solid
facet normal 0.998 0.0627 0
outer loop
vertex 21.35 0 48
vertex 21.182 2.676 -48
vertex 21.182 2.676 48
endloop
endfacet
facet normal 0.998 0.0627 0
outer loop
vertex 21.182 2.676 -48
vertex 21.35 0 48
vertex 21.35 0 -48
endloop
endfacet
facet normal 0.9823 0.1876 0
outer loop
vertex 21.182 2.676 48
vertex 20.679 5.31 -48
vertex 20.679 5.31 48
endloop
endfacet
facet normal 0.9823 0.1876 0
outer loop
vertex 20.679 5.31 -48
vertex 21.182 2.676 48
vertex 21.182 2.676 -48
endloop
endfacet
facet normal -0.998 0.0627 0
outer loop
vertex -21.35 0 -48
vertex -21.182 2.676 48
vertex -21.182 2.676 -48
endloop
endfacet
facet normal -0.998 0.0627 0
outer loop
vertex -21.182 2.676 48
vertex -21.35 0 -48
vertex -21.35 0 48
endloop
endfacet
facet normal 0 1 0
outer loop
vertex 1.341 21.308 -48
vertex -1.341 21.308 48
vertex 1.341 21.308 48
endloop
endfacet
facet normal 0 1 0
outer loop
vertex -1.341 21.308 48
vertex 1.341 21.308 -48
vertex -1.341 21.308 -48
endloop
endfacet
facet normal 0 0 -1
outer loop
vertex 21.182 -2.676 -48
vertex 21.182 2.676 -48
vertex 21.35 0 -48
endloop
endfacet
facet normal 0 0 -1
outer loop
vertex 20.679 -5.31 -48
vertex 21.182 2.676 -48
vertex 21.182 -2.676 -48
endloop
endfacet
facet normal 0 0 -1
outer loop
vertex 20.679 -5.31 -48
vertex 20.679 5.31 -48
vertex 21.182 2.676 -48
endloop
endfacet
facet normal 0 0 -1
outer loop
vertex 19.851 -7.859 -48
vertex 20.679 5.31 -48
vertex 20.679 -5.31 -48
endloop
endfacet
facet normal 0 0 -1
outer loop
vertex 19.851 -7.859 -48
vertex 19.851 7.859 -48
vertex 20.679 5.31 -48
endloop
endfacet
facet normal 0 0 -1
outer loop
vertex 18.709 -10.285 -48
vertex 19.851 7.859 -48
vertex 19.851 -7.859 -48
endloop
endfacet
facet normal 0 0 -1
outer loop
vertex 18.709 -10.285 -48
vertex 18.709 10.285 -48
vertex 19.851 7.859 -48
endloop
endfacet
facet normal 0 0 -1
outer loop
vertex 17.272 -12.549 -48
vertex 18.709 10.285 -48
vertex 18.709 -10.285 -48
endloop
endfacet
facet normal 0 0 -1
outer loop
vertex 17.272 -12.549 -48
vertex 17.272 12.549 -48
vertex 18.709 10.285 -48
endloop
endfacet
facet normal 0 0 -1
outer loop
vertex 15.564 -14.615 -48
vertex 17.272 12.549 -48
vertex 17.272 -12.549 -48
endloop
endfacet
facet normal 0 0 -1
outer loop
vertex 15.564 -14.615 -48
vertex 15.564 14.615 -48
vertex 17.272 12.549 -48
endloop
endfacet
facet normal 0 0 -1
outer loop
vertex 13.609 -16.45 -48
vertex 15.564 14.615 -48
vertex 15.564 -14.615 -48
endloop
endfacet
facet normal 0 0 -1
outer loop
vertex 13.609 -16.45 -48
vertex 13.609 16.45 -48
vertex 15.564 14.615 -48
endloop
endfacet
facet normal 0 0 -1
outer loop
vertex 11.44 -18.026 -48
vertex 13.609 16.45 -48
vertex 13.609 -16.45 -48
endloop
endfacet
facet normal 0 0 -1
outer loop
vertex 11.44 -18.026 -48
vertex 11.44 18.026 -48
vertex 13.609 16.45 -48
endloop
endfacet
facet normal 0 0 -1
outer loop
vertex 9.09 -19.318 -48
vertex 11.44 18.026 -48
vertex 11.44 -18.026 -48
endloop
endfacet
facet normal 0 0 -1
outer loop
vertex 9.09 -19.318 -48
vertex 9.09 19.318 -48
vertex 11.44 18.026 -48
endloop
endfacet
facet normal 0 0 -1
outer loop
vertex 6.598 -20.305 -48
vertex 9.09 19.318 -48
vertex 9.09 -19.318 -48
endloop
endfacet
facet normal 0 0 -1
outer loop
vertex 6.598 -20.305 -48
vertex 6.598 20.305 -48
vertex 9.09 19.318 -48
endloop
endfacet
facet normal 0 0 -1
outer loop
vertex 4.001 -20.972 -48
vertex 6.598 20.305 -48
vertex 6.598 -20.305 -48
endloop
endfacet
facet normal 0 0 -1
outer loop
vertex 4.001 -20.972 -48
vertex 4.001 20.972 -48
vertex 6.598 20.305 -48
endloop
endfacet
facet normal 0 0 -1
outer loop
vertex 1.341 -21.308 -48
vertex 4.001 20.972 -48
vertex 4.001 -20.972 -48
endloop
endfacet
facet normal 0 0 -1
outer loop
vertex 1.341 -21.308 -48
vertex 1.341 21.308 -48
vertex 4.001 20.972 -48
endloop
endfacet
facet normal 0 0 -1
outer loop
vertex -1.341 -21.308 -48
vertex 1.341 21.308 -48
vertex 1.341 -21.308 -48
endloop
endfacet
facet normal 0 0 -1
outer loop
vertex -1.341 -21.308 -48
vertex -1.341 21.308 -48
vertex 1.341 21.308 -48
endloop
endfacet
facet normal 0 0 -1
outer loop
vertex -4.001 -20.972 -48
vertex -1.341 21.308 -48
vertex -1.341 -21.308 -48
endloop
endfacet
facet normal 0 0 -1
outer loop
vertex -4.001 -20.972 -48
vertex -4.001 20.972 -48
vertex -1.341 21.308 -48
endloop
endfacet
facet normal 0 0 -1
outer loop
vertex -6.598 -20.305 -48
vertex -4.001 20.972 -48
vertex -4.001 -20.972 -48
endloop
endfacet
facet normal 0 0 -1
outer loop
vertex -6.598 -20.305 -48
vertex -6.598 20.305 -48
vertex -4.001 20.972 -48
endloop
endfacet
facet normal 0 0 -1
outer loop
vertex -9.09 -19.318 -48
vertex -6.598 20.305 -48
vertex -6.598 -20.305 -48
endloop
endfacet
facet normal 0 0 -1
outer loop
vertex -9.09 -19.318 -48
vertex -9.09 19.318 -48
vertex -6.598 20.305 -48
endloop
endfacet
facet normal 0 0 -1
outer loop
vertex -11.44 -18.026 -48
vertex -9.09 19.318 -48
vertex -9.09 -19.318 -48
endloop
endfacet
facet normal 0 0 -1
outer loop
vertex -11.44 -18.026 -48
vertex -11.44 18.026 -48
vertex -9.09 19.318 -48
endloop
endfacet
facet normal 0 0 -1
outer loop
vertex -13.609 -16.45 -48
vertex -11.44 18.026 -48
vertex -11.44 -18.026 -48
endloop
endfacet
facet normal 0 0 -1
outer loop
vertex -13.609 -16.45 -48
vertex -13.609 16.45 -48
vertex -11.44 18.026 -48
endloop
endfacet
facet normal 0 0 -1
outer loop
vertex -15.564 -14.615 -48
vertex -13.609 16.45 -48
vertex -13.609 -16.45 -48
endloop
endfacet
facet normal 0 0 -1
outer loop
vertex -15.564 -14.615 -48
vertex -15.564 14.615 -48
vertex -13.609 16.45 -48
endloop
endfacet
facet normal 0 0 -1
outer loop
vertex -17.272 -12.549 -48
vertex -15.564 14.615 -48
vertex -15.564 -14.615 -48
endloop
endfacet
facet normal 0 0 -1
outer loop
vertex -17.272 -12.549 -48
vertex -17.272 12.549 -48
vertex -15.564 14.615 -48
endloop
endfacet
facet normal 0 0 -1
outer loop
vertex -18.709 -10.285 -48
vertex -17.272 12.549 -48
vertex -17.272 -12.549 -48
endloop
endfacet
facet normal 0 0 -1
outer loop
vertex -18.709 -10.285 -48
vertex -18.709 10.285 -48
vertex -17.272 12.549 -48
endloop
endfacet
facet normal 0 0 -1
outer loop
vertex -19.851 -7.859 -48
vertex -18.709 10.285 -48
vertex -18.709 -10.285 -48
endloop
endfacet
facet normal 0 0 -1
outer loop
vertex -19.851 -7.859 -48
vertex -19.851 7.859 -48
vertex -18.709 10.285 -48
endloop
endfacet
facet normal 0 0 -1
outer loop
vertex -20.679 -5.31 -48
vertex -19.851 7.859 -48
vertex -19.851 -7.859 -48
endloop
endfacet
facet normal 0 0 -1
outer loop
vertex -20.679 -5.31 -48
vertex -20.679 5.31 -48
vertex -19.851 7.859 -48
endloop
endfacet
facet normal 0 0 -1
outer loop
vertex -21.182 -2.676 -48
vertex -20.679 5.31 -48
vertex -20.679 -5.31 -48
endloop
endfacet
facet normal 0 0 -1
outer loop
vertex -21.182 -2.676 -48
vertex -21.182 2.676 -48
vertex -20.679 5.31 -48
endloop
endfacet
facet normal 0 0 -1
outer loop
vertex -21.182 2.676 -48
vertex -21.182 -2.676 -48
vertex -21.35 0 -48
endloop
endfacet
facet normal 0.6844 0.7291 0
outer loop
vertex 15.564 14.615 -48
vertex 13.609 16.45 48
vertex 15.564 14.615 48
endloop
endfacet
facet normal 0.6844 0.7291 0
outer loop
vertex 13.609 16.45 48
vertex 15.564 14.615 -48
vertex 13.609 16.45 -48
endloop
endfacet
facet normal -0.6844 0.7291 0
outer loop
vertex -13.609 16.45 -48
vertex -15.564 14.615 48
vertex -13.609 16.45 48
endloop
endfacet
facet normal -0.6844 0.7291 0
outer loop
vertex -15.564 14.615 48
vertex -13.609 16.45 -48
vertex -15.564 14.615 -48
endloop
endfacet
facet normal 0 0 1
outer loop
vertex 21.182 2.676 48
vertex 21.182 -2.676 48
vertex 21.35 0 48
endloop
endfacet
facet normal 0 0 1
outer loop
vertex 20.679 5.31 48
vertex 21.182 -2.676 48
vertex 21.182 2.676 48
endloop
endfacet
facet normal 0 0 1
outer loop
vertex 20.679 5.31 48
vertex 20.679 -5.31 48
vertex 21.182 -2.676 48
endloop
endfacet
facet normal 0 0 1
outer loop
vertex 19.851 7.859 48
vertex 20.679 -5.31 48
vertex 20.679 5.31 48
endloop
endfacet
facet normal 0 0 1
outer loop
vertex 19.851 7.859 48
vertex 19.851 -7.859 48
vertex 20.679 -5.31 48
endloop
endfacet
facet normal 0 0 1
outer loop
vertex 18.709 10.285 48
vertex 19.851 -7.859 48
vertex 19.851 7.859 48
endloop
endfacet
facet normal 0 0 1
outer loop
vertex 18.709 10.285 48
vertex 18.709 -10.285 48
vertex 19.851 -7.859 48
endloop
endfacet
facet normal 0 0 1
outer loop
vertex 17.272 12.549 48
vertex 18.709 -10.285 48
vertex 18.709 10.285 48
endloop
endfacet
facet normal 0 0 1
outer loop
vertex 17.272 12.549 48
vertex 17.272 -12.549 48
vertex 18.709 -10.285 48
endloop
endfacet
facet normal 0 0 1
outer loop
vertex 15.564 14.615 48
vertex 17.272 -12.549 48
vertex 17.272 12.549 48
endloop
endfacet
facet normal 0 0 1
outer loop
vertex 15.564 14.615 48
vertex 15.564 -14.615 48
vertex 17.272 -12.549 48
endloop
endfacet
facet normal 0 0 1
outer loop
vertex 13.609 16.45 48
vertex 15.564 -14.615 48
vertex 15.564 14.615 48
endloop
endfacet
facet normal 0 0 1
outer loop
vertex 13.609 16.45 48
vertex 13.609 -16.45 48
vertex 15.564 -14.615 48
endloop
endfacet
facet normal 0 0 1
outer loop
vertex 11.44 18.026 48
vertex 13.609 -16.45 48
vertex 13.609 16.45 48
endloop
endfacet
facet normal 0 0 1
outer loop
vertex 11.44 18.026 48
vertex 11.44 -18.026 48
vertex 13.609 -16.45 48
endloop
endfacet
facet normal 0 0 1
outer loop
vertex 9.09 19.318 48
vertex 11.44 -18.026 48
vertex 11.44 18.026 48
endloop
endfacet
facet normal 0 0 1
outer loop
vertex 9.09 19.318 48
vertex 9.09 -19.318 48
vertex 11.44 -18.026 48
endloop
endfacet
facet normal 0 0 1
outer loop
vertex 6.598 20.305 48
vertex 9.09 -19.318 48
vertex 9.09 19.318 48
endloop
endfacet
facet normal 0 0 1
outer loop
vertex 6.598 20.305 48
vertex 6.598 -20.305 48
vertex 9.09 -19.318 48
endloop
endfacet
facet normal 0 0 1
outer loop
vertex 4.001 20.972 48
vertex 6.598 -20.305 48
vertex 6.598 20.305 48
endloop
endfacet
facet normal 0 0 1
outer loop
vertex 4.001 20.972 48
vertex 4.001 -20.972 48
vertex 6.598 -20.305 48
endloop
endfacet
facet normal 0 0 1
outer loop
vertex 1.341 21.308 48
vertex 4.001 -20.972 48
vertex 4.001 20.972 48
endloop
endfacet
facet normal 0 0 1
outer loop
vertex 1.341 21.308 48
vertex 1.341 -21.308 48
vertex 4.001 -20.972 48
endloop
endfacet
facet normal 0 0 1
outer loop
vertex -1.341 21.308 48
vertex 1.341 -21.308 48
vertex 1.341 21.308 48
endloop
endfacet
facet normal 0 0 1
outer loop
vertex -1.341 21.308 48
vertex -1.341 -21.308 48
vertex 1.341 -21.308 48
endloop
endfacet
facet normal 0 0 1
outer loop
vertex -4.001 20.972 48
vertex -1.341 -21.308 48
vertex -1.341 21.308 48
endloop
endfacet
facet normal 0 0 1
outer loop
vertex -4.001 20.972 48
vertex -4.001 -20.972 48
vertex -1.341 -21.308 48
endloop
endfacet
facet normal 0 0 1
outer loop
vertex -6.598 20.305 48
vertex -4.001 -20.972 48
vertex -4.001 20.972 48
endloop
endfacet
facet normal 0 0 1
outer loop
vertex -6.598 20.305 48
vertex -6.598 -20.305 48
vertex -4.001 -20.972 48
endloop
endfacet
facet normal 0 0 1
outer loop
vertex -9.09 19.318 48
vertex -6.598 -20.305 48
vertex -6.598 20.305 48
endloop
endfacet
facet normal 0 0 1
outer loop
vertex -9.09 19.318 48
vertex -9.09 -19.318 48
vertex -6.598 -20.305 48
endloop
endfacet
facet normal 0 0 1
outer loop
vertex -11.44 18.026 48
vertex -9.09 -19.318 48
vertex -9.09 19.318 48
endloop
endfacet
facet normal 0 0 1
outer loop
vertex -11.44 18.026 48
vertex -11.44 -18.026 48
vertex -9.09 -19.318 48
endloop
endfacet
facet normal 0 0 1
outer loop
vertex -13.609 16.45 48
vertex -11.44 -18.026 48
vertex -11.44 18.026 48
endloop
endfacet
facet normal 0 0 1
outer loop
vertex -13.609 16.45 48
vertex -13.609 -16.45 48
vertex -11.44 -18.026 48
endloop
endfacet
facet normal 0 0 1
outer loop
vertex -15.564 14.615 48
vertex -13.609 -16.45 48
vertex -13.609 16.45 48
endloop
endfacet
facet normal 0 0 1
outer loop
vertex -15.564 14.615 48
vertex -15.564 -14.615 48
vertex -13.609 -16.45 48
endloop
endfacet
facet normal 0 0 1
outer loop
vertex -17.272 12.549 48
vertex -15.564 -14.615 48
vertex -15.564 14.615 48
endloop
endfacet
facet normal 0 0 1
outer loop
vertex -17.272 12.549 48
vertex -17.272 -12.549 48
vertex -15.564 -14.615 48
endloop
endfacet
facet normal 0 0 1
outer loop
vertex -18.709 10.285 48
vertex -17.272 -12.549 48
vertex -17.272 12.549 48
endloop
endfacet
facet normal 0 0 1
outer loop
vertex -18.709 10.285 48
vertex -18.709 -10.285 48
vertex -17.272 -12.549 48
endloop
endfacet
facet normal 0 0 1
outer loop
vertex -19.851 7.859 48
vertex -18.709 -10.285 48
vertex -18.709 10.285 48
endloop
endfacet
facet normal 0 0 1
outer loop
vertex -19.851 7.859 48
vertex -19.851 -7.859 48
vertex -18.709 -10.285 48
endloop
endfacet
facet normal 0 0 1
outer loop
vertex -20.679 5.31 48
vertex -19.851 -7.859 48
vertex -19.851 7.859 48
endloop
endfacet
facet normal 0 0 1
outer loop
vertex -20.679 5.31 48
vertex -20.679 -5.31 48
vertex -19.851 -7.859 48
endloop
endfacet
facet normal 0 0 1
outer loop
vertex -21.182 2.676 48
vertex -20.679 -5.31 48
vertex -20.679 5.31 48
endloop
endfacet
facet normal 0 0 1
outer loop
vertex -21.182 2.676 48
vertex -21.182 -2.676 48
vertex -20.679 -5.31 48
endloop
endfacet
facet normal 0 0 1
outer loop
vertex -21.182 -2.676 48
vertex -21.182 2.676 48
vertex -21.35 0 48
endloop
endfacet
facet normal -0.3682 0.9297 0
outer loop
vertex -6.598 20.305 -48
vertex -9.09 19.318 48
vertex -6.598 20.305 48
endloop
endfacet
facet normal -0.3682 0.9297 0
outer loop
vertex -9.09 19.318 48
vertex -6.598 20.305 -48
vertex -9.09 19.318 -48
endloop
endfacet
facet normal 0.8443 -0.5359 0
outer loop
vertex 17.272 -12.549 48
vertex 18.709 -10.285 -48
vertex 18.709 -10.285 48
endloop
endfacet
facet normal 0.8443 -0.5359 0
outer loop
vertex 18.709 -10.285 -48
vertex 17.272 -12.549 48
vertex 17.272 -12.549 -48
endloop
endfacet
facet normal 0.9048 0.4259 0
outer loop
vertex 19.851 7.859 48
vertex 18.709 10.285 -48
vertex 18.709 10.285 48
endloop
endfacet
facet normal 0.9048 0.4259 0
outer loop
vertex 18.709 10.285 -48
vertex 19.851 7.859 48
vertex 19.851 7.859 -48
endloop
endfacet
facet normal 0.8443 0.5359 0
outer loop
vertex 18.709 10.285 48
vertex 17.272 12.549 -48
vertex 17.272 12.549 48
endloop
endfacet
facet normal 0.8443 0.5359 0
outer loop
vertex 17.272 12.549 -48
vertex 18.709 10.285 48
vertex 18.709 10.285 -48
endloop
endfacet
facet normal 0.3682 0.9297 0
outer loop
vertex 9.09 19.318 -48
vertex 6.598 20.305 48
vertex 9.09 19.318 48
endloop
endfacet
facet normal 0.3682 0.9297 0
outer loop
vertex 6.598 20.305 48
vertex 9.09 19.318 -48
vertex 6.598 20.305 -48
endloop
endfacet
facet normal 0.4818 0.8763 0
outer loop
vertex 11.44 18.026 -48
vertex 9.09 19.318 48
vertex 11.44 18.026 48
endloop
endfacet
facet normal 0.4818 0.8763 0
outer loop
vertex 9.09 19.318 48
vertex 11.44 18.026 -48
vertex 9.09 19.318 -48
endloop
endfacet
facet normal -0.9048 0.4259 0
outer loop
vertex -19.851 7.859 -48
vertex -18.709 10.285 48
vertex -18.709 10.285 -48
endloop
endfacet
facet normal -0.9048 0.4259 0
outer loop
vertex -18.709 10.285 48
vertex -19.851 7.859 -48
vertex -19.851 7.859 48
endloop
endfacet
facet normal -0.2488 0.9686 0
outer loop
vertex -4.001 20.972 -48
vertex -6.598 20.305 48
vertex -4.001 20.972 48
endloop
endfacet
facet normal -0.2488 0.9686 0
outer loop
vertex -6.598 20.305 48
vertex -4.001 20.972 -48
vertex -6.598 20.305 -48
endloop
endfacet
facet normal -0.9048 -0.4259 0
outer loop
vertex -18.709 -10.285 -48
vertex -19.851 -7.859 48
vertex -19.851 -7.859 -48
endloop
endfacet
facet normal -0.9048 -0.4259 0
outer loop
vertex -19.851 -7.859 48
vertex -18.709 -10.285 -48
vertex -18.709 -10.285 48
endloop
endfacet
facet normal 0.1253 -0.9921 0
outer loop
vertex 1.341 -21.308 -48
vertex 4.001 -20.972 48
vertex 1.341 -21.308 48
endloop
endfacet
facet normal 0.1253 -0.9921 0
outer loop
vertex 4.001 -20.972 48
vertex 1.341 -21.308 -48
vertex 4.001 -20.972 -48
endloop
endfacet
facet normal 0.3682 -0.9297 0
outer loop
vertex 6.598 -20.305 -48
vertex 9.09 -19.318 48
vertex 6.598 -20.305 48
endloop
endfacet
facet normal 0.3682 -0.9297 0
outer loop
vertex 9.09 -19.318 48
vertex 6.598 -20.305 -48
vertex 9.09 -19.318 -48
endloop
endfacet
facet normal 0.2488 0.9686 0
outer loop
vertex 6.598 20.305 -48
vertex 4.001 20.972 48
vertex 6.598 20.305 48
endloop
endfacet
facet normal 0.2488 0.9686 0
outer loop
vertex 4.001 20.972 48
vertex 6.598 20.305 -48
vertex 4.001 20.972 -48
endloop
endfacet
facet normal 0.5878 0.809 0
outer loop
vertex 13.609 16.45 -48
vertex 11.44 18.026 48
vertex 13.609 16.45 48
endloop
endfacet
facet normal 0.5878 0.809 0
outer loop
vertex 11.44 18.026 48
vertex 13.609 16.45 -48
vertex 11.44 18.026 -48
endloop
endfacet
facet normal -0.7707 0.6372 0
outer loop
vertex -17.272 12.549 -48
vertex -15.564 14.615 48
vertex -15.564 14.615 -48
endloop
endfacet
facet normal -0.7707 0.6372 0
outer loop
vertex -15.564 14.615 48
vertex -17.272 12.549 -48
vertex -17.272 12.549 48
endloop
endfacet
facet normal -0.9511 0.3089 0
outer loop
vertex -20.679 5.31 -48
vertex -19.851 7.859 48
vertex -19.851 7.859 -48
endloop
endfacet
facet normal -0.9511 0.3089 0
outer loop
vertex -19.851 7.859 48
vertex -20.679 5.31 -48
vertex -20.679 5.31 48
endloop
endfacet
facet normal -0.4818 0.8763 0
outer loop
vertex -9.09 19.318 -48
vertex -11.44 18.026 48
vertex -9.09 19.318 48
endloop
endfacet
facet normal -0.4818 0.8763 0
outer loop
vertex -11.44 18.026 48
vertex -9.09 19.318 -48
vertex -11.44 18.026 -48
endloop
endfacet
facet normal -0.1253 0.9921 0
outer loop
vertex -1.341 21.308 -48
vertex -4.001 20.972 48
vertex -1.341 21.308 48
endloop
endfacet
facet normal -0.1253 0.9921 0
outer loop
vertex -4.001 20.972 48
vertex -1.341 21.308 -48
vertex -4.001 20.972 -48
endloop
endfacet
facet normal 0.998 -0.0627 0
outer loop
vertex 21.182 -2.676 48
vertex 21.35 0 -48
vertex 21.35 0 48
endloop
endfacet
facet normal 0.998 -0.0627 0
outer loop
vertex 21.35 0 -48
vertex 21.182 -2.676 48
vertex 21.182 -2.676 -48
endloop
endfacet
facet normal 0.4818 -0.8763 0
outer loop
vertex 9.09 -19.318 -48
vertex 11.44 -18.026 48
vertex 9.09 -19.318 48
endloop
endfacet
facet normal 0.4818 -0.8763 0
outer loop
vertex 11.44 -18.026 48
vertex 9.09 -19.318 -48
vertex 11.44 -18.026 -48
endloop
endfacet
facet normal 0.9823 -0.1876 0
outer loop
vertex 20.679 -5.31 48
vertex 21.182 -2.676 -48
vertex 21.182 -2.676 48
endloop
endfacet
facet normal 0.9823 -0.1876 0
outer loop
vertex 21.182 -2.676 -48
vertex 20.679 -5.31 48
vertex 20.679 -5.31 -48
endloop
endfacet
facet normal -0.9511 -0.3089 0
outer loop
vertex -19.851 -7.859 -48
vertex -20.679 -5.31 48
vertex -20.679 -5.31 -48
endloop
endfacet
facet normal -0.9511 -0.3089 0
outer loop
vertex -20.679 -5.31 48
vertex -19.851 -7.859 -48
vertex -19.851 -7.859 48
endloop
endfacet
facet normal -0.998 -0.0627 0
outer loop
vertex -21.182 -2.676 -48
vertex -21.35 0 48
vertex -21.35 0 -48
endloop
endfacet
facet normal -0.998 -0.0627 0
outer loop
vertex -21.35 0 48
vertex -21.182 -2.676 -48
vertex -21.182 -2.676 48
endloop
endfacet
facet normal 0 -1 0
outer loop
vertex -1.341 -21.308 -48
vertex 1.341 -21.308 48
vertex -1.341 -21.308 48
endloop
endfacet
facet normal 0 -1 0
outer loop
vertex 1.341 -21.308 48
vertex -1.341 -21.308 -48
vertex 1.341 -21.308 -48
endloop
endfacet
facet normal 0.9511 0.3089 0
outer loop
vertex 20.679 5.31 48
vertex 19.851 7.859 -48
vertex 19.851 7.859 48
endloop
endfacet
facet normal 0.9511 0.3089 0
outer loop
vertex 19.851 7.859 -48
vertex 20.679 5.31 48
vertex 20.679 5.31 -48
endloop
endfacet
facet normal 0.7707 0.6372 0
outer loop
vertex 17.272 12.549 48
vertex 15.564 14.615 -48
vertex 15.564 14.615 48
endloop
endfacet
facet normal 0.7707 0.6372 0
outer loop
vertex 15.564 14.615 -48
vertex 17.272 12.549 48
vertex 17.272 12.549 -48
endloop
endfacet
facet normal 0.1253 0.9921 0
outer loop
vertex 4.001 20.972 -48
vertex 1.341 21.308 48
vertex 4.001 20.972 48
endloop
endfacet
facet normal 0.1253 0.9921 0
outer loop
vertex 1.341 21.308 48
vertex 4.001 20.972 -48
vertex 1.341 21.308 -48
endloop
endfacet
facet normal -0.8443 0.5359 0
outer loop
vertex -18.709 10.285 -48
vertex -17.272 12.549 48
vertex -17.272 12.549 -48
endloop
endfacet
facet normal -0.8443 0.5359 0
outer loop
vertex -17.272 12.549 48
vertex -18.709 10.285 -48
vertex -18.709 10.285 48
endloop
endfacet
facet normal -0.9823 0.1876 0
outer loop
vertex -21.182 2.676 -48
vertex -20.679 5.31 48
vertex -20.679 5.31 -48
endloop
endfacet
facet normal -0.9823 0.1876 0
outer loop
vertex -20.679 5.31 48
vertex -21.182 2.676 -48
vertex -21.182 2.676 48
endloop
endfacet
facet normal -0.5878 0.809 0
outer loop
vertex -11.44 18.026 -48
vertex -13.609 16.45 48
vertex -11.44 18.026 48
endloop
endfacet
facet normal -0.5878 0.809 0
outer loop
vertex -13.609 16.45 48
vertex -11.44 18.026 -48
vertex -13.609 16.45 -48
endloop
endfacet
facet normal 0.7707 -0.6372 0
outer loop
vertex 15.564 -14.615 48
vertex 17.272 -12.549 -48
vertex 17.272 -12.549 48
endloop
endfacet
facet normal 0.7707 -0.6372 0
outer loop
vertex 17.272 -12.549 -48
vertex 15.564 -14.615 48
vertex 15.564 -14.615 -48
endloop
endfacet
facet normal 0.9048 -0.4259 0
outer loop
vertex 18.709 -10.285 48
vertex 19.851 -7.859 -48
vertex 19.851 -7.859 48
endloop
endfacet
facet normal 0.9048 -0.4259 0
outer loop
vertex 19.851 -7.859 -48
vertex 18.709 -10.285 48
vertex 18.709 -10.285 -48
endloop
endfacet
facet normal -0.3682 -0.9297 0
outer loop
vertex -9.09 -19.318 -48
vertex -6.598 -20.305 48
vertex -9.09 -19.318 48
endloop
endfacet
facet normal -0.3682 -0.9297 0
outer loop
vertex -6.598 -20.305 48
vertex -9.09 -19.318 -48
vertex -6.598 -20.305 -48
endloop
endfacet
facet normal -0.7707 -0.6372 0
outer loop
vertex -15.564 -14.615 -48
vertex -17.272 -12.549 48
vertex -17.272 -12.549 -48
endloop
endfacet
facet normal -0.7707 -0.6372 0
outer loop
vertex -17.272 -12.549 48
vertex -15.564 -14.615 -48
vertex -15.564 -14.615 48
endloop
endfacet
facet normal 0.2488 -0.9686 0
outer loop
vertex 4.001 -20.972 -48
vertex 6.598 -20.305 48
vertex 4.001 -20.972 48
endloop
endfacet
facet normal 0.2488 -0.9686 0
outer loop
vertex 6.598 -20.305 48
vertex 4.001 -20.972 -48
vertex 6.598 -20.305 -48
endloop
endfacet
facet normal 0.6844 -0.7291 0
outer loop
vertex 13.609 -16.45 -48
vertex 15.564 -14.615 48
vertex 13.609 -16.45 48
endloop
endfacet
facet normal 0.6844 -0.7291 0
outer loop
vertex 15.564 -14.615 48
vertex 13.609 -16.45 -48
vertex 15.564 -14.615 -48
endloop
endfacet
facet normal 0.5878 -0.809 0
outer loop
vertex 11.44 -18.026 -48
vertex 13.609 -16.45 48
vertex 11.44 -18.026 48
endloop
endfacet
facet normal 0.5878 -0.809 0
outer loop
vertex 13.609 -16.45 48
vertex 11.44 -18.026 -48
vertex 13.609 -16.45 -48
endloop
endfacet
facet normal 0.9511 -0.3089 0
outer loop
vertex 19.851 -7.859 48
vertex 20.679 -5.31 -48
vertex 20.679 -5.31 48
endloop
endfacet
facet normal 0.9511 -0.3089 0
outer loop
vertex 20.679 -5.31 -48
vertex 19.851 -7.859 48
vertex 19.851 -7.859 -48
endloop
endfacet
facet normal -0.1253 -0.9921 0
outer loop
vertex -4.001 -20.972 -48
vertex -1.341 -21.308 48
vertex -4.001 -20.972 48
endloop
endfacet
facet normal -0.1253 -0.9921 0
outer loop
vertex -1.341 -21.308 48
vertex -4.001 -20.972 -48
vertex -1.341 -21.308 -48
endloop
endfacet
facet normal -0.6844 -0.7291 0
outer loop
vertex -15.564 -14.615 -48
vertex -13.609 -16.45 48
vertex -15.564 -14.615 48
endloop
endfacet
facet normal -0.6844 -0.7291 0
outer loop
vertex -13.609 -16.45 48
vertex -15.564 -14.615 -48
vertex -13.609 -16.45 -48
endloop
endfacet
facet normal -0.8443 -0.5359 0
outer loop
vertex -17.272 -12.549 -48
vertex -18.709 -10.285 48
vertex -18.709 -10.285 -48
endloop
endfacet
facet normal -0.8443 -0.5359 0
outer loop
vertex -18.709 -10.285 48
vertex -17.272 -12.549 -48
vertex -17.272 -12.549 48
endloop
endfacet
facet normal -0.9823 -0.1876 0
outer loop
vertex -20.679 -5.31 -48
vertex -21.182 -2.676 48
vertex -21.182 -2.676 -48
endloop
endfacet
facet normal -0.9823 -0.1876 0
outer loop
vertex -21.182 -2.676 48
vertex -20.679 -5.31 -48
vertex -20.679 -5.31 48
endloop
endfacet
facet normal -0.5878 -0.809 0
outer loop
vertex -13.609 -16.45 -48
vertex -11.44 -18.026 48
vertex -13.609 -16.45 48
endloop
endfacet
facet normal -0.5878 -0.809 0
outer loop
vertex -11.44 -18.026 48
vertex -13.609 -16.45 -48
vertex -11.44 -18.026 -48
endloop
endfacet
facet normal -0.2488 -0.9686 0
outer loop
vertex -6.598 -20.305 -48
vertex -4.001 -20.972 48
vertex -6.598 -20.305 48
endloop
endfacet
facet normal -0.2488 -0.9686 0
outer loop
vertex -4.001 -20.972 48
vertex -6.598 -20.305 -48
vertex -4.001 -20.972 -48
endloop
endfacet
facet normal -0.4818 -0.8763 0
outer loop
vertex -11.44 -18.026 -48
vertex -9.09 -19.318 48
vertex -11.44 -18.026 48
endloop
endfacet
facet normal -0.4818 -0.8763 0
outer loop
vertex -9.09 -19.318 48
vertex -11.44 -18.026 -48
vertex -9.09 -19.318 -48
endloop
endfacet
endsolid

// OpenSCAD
$fn = 50;


difference() {
	union() {
		translate(v = [0, 0, -48.0000000000]) {
			cylinder(h = 96, r = 21.3500000000);
		}
	}
	union() {
		translate(v = [0, 0, -100.0000000000]) {
			cylinder(h = 200, r = 0);
		}
	}
}
